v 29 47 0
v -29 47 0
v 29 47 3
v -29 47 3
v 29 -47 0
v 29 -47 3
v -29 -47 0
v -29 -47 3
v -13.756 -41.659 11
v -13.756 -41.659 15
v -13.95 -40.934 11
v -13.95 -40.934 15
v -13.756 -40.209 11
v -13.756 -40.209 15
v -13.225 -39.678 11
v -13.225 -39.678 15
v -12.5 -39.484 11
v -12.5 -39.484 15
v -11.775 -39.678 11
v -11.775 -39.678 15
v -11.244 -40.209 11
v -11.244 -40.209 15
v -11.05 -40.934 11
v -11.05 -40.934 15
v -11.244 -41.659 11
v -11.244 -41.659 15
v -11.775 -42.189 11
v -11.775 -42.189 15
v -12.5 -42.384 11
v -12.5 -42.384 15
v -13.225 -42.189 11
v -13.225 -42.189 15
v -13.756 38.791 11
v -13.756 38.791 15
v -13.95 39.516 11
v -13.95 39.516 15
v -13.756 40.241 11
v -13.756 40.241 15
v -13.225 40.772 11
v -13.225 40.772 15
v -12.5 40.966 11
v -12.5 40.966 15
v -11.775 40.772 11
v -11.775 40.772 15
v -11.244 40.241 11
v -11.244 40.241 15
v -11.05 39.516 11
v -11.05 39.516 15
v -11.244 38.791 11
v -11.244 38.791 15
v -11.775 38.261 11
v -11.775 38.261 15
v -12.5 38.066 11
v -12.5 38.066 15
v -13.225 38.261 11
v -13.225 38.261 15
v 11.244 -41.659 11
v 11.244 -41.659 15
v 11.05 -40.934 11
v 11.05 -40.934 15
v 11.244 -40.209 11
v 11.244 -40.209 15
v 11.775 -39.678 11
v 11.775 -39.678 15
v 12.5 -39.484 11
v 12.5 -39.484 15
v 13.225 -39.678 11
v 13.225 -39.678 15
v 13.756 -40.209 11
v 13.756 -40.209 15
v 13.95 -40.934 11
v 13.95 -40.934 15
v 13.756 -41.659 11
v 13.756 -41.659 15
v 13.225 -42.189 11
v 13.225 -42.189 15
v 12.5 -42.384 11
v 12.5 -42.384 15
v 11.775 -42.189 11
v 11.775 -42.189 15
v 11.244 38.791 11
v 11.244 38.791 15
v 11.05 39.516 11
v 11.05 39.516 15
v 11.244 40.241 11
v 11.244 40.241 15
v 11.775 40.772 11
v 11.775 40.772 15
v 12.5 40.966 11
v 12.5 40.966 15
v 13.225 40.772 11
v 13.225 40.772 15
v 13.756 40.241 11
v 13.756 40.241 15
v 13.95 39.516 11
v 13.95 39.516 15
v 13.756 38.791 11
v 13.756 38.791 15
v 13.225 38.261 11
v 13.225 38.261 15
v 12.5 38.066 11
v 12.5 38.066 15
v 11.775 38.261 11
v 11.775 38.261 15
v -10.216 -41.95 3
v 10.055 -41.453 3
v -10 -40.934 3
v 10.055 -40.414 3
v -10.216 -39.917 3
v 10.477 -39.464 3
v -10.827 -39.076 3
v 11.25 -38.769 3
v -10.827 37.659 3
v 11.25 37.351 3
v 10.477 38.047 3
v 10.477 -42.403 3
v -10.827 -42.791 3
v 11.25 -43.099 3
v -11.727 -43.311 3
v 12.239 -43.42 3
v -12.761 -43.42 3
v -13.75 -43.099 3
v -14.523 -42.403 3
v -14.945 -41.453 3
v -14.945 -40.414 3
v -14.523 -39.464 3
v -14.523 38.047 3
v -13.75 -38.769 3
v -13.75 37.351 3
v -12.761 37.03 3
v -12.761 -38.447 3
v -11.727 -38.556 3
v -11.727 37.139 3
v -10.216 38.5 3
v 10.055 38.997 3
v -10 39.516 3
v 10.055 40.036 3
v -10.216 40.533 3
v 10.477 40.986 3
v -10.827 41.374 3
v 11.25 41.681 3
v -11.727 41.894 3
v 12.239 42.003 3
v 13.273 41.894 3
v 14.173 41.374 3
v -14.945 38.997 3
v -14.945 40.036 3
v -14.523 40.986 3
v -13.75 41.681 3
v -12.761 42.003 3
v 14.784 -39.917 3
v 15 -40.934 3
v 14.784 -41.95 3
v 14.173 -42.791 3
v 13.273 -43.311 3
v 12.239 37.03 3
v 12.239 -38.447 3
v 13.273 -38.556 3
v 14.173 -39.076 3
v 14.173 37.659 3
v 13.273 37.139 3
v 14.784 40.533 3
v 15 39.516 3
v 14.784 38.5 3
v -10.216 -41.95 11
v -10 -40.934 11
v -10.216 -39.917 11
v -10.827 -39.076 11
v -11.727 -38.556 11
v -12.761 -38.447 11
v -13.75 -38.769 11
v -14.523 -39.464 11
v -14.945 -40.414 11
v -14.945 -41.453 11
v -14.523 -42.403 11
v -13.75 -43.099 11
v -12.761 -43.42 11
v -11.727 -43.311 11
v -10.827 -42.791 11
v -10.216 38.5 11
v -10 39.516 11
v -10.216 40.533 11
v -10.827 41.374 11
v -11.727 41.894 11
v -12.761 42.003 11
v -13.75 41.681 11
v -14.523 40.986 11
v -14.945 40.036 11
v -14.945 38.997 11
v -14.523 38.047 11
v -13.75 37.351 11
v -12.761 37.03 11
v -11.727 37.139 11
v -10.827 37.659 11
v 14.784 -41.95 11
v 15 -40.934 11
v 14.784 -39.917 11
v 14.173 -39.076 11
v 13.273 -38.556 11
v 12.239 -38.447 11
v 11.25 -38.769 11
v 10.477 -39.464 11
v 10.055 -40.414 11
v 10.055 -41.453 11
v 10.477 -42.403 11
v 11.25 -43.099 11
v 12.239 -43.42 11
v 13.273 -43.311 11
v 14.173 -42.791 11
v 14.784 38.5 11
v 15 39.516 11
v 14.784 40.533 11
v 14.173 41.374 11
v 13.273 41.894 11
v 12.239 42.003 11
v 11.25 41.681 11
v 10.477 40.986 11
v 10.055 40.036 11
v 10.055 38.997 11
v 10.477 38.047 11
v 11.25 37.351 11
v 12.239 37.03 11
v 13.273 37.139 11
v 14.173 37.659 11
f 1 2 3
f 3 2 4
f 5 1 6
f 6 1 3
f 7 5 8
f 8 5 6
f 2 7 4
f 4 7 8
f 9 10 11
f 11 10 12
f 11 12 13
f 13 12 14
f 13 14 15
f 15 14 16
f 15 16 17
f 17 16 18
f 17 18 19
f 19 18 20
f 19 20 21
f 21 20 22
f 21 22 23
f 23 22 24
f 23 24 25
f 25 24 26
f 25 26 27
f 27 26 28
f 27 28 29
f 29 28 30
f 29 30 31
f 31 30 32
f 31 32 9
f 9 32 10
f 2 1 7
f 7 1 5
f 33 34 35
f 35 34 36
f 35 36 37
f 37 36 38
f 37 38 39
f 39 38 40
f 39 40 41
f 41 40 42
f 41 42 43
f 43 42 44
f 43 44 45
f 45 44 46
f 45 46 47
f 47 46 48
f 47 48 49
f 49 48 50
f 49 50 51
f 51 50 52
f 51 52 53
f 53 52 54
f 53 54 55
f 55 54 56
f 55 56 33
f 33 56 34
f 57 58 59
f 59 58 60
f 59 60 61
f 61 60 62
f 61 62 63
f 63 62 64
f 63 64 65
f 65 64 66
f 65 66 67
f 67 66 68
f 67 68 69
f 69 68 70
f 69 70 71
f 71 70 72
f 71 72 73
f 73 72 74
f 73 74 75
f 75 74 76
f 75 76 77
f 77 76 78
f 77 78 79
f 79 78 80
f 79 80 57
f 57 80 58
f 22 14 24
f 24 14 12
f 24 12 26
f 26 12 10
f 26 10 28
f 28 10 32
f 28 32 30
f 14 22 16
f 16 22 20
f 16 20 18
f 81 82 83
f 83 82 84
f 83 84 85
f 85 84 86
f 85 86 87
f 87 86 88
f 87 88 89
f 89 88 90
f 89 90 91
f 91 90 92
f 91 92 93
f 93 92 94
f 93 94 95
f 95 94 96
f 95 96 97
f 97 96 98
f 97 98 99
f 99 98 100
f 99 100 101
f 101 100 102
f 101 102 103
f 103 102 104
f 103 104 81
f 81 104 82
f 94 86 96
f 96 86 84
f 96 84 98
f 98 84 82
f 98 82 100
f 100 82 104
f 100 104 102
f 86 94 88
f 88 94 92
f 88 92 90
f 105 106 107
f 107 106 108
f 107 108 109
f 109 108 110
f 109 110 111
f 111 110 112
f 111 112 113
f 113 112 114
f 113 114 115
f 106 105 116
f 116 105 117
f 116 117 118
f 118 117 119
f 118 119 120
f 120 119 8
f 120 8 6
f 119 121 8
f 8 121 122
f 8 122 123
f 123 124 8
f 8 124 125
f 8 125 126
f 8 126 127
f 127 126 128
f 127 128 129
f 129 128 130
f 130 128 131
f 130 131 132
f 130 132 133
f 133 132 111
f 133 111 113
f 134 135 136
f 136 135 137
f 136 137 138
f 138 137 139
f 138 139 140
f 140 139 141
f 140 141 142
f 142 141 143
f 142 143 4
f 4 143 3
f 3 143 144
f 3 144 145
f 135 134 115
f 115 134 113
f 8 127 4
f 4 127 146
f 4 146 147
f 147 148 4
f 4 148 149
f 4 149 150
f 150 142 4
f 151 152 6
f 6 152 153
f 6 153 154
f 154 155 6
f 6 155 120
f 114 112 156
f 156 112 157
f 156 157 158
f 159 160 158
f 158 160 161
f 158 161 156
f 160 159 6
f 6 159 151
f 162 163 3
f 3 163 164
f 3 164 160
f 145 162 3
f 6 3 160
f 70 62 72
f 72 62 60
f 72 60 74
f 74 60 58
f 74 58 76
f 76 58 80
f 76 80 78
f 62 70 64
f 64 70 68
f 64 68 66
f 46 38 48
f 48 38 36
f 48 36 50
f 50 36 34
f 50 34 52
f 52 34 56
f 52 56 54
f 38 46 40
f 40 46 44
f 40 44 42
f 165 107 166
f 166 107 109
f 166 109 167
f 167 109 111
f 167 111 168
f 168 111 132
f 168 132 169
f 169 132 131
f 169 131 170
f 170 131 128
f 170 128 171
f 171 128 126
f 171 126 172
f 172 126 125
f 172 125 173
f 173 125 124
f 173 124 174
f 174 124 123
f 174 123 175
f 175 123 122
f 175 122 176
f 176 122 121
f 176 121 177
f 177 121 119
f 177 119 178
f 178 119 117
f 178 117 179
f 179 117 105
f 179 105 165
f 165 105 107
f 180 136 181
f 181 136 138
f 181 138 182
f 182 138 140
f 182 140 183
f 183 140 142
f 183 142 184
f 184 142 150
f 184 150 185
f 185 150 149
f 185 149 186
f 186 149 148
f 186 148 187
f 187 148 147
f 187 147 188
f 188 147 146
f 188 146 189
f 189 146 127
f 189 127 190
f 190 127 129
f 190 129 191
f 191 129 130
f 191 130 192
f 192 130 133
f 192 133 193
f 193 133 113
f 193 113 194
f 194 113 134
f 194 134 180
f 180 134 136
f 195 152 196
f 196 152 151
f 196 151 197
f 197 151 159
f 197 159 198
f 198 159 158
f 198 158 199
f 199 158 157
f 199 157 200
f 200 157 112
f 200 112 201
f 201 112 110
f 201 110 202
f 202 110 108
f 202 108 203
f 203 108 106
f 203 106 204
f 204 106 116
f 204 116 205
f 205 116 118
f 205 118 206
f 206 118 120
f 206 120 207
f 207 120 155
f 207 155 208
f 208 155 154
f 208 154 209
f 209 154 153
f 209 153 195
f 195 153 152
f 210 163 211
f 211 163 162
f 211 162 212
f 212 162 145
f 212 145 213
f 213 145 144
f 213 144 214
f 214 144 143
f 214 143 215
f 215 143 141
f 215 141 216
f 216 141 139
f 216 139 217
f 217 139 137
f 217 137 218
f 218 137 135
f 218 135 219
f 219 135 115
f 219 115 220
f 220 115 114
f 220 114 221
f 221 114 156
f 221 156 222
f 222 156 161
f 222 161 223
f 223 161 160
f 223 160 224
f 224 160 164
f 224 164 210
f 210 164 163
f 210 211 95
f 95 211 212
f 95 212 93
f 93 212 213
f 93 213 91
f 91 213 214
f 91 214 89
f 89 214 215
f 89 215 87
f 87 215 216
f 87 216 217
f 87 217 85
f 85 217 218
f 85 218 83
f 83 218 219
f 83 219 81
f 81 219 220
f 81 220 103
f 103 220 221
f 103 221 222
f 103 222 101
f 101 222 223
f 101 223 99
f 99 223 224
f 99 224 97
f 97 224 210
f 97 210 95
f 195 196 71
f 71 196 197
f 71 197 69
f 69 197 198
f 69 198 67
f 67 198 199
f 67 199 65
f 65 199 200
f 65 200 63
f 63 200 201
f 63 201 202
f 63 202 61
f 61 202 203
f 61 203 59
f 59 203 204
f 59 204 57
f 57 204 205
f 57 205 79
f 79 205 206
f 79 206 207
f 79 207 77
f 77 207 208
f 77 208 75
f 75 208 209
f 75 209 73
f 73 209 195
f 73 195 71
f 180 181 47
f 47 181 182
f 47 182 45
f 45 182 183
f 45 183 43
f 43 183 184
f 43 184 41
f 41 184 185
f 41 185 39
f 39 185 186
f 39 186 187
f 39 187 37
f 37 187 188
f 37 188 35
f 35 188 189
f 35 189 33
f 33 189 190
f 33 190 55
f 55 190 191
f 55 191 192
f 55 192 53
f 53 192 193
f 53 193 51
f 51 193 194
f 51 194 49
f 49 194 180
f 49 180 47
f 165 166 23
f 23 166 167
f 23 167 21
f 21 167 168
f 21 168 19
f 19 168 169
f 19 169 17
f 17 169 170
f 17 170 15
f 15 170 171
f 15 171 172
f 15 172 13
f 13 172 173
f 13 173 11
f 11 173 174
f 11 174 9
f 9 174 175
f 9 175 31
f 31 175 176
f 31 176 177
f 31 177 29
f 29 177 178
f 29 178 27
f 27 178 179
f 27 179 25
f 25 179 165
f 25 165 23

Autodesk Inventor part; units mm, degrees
ref_plane "YZ Plane" through (0, 0, 0) normal (1, 0, 0) x (0, 1, 0)
ref_plane "XZ Plane" through (0, 0, 0) normal (0, 1, 0) x (-1, 0, 0)
ref_plane "XY Plane" through (0, 0, 0) normal (0, 0, 1) x (1, 0, 0)
sketch "Náčrt1" plane through (0, 0, 0) normal (0, 0, 1) x (1, 0, 0)
  line L0 (-29, -47) -> (29, -47)
  line L1 (29, -47) -> (29, 47)
  line L2 (29, 47) -> (-29, 47)
  line L3 (-29, 47) -> (-29, -47)
  line L4 (-29, -47) -> (29, 47) construction
  line L5 (29, -47) -> (-29, 47) construction
  line L6 (0, 47) -> (0, -47)
  line L7 (0, -43.9165) -> (12.5, -43.9165)
  point P0 (0, 0)
  dimension "d0" = 58
  dimension "d1" = 94
  dimension "d2" = 12.5
extrude "Vysunutí1" add sketch "Náčrt1" along normal blind 3
sketch "Náčrt2" plane through (0, 0, 3) normal (0, 0, 1) x (1, 0, 0)
  point P0 (0, 0)
sketch "Náčrt3" plane through (0, 0, 3) normal (0, 0, 1) x (1, 0, 0)
  line L0 (0, -40.9336) -> (12.5, -40.9336)
  circle A0 centre (12.5, -40.9336) radius 1.45
  line L1 (0, 0) -> (0, -12.3388)
  circle A1 centre (-12.5, -40.9336) radius 1.45
  line L2 (-12.5, -39.4836) -> (-12.5, 38.0164)
  circle A2 centre (-12.5, 39.5164) radius 1.45
  circle A3 centre (12.5, 39.5164) radius 1.45
  dimension "d5" = 12.5
  dimension "d6" = 2.9
  dimension "d7" = 77.5
  dimension "d8" = 2.9
  dimension "d9" = 1.5
extrude "Vysunutí2" add sketch "Náčrt3" along normal blind 12
sketch "Náčrt4" plane through (0, 0, 3) normal (0, 0, 1) x (1, 0, 0)
  circle A0 centre (12.5, 39.5164) radius 1.45 projected
  circle A1 centre (12.5, 39.5164) radius 2.5
  circle A2 centre (-12.5, 39.5164) radius 1.45 projected
  circle A3 centre (-12.5, 39.5164) radius 2.5
  circle A4 centre (-12.5, -40.9336) radius 1.45 projected
  circle A5 centre (-12.5, -40.9336) radius 2.5
  circle A6 centre (12.5, -40.9336) radius 1.45 projected
  circle A7 centre (12.5, -40.9336) radius 2.5
  point P0 (0, 0)
  dimension "d12" = 5
  dimension "d13" = 5
  dimension "d14" = 5
  dimension "d15" = 5
extrude "Vysunutí3" add sketch "Náčrt4" along normal blind 8 contours A0 | A1 | A2 | A3 | A4 | A5 | A6 | A7
properties part number "drzak_plos"
